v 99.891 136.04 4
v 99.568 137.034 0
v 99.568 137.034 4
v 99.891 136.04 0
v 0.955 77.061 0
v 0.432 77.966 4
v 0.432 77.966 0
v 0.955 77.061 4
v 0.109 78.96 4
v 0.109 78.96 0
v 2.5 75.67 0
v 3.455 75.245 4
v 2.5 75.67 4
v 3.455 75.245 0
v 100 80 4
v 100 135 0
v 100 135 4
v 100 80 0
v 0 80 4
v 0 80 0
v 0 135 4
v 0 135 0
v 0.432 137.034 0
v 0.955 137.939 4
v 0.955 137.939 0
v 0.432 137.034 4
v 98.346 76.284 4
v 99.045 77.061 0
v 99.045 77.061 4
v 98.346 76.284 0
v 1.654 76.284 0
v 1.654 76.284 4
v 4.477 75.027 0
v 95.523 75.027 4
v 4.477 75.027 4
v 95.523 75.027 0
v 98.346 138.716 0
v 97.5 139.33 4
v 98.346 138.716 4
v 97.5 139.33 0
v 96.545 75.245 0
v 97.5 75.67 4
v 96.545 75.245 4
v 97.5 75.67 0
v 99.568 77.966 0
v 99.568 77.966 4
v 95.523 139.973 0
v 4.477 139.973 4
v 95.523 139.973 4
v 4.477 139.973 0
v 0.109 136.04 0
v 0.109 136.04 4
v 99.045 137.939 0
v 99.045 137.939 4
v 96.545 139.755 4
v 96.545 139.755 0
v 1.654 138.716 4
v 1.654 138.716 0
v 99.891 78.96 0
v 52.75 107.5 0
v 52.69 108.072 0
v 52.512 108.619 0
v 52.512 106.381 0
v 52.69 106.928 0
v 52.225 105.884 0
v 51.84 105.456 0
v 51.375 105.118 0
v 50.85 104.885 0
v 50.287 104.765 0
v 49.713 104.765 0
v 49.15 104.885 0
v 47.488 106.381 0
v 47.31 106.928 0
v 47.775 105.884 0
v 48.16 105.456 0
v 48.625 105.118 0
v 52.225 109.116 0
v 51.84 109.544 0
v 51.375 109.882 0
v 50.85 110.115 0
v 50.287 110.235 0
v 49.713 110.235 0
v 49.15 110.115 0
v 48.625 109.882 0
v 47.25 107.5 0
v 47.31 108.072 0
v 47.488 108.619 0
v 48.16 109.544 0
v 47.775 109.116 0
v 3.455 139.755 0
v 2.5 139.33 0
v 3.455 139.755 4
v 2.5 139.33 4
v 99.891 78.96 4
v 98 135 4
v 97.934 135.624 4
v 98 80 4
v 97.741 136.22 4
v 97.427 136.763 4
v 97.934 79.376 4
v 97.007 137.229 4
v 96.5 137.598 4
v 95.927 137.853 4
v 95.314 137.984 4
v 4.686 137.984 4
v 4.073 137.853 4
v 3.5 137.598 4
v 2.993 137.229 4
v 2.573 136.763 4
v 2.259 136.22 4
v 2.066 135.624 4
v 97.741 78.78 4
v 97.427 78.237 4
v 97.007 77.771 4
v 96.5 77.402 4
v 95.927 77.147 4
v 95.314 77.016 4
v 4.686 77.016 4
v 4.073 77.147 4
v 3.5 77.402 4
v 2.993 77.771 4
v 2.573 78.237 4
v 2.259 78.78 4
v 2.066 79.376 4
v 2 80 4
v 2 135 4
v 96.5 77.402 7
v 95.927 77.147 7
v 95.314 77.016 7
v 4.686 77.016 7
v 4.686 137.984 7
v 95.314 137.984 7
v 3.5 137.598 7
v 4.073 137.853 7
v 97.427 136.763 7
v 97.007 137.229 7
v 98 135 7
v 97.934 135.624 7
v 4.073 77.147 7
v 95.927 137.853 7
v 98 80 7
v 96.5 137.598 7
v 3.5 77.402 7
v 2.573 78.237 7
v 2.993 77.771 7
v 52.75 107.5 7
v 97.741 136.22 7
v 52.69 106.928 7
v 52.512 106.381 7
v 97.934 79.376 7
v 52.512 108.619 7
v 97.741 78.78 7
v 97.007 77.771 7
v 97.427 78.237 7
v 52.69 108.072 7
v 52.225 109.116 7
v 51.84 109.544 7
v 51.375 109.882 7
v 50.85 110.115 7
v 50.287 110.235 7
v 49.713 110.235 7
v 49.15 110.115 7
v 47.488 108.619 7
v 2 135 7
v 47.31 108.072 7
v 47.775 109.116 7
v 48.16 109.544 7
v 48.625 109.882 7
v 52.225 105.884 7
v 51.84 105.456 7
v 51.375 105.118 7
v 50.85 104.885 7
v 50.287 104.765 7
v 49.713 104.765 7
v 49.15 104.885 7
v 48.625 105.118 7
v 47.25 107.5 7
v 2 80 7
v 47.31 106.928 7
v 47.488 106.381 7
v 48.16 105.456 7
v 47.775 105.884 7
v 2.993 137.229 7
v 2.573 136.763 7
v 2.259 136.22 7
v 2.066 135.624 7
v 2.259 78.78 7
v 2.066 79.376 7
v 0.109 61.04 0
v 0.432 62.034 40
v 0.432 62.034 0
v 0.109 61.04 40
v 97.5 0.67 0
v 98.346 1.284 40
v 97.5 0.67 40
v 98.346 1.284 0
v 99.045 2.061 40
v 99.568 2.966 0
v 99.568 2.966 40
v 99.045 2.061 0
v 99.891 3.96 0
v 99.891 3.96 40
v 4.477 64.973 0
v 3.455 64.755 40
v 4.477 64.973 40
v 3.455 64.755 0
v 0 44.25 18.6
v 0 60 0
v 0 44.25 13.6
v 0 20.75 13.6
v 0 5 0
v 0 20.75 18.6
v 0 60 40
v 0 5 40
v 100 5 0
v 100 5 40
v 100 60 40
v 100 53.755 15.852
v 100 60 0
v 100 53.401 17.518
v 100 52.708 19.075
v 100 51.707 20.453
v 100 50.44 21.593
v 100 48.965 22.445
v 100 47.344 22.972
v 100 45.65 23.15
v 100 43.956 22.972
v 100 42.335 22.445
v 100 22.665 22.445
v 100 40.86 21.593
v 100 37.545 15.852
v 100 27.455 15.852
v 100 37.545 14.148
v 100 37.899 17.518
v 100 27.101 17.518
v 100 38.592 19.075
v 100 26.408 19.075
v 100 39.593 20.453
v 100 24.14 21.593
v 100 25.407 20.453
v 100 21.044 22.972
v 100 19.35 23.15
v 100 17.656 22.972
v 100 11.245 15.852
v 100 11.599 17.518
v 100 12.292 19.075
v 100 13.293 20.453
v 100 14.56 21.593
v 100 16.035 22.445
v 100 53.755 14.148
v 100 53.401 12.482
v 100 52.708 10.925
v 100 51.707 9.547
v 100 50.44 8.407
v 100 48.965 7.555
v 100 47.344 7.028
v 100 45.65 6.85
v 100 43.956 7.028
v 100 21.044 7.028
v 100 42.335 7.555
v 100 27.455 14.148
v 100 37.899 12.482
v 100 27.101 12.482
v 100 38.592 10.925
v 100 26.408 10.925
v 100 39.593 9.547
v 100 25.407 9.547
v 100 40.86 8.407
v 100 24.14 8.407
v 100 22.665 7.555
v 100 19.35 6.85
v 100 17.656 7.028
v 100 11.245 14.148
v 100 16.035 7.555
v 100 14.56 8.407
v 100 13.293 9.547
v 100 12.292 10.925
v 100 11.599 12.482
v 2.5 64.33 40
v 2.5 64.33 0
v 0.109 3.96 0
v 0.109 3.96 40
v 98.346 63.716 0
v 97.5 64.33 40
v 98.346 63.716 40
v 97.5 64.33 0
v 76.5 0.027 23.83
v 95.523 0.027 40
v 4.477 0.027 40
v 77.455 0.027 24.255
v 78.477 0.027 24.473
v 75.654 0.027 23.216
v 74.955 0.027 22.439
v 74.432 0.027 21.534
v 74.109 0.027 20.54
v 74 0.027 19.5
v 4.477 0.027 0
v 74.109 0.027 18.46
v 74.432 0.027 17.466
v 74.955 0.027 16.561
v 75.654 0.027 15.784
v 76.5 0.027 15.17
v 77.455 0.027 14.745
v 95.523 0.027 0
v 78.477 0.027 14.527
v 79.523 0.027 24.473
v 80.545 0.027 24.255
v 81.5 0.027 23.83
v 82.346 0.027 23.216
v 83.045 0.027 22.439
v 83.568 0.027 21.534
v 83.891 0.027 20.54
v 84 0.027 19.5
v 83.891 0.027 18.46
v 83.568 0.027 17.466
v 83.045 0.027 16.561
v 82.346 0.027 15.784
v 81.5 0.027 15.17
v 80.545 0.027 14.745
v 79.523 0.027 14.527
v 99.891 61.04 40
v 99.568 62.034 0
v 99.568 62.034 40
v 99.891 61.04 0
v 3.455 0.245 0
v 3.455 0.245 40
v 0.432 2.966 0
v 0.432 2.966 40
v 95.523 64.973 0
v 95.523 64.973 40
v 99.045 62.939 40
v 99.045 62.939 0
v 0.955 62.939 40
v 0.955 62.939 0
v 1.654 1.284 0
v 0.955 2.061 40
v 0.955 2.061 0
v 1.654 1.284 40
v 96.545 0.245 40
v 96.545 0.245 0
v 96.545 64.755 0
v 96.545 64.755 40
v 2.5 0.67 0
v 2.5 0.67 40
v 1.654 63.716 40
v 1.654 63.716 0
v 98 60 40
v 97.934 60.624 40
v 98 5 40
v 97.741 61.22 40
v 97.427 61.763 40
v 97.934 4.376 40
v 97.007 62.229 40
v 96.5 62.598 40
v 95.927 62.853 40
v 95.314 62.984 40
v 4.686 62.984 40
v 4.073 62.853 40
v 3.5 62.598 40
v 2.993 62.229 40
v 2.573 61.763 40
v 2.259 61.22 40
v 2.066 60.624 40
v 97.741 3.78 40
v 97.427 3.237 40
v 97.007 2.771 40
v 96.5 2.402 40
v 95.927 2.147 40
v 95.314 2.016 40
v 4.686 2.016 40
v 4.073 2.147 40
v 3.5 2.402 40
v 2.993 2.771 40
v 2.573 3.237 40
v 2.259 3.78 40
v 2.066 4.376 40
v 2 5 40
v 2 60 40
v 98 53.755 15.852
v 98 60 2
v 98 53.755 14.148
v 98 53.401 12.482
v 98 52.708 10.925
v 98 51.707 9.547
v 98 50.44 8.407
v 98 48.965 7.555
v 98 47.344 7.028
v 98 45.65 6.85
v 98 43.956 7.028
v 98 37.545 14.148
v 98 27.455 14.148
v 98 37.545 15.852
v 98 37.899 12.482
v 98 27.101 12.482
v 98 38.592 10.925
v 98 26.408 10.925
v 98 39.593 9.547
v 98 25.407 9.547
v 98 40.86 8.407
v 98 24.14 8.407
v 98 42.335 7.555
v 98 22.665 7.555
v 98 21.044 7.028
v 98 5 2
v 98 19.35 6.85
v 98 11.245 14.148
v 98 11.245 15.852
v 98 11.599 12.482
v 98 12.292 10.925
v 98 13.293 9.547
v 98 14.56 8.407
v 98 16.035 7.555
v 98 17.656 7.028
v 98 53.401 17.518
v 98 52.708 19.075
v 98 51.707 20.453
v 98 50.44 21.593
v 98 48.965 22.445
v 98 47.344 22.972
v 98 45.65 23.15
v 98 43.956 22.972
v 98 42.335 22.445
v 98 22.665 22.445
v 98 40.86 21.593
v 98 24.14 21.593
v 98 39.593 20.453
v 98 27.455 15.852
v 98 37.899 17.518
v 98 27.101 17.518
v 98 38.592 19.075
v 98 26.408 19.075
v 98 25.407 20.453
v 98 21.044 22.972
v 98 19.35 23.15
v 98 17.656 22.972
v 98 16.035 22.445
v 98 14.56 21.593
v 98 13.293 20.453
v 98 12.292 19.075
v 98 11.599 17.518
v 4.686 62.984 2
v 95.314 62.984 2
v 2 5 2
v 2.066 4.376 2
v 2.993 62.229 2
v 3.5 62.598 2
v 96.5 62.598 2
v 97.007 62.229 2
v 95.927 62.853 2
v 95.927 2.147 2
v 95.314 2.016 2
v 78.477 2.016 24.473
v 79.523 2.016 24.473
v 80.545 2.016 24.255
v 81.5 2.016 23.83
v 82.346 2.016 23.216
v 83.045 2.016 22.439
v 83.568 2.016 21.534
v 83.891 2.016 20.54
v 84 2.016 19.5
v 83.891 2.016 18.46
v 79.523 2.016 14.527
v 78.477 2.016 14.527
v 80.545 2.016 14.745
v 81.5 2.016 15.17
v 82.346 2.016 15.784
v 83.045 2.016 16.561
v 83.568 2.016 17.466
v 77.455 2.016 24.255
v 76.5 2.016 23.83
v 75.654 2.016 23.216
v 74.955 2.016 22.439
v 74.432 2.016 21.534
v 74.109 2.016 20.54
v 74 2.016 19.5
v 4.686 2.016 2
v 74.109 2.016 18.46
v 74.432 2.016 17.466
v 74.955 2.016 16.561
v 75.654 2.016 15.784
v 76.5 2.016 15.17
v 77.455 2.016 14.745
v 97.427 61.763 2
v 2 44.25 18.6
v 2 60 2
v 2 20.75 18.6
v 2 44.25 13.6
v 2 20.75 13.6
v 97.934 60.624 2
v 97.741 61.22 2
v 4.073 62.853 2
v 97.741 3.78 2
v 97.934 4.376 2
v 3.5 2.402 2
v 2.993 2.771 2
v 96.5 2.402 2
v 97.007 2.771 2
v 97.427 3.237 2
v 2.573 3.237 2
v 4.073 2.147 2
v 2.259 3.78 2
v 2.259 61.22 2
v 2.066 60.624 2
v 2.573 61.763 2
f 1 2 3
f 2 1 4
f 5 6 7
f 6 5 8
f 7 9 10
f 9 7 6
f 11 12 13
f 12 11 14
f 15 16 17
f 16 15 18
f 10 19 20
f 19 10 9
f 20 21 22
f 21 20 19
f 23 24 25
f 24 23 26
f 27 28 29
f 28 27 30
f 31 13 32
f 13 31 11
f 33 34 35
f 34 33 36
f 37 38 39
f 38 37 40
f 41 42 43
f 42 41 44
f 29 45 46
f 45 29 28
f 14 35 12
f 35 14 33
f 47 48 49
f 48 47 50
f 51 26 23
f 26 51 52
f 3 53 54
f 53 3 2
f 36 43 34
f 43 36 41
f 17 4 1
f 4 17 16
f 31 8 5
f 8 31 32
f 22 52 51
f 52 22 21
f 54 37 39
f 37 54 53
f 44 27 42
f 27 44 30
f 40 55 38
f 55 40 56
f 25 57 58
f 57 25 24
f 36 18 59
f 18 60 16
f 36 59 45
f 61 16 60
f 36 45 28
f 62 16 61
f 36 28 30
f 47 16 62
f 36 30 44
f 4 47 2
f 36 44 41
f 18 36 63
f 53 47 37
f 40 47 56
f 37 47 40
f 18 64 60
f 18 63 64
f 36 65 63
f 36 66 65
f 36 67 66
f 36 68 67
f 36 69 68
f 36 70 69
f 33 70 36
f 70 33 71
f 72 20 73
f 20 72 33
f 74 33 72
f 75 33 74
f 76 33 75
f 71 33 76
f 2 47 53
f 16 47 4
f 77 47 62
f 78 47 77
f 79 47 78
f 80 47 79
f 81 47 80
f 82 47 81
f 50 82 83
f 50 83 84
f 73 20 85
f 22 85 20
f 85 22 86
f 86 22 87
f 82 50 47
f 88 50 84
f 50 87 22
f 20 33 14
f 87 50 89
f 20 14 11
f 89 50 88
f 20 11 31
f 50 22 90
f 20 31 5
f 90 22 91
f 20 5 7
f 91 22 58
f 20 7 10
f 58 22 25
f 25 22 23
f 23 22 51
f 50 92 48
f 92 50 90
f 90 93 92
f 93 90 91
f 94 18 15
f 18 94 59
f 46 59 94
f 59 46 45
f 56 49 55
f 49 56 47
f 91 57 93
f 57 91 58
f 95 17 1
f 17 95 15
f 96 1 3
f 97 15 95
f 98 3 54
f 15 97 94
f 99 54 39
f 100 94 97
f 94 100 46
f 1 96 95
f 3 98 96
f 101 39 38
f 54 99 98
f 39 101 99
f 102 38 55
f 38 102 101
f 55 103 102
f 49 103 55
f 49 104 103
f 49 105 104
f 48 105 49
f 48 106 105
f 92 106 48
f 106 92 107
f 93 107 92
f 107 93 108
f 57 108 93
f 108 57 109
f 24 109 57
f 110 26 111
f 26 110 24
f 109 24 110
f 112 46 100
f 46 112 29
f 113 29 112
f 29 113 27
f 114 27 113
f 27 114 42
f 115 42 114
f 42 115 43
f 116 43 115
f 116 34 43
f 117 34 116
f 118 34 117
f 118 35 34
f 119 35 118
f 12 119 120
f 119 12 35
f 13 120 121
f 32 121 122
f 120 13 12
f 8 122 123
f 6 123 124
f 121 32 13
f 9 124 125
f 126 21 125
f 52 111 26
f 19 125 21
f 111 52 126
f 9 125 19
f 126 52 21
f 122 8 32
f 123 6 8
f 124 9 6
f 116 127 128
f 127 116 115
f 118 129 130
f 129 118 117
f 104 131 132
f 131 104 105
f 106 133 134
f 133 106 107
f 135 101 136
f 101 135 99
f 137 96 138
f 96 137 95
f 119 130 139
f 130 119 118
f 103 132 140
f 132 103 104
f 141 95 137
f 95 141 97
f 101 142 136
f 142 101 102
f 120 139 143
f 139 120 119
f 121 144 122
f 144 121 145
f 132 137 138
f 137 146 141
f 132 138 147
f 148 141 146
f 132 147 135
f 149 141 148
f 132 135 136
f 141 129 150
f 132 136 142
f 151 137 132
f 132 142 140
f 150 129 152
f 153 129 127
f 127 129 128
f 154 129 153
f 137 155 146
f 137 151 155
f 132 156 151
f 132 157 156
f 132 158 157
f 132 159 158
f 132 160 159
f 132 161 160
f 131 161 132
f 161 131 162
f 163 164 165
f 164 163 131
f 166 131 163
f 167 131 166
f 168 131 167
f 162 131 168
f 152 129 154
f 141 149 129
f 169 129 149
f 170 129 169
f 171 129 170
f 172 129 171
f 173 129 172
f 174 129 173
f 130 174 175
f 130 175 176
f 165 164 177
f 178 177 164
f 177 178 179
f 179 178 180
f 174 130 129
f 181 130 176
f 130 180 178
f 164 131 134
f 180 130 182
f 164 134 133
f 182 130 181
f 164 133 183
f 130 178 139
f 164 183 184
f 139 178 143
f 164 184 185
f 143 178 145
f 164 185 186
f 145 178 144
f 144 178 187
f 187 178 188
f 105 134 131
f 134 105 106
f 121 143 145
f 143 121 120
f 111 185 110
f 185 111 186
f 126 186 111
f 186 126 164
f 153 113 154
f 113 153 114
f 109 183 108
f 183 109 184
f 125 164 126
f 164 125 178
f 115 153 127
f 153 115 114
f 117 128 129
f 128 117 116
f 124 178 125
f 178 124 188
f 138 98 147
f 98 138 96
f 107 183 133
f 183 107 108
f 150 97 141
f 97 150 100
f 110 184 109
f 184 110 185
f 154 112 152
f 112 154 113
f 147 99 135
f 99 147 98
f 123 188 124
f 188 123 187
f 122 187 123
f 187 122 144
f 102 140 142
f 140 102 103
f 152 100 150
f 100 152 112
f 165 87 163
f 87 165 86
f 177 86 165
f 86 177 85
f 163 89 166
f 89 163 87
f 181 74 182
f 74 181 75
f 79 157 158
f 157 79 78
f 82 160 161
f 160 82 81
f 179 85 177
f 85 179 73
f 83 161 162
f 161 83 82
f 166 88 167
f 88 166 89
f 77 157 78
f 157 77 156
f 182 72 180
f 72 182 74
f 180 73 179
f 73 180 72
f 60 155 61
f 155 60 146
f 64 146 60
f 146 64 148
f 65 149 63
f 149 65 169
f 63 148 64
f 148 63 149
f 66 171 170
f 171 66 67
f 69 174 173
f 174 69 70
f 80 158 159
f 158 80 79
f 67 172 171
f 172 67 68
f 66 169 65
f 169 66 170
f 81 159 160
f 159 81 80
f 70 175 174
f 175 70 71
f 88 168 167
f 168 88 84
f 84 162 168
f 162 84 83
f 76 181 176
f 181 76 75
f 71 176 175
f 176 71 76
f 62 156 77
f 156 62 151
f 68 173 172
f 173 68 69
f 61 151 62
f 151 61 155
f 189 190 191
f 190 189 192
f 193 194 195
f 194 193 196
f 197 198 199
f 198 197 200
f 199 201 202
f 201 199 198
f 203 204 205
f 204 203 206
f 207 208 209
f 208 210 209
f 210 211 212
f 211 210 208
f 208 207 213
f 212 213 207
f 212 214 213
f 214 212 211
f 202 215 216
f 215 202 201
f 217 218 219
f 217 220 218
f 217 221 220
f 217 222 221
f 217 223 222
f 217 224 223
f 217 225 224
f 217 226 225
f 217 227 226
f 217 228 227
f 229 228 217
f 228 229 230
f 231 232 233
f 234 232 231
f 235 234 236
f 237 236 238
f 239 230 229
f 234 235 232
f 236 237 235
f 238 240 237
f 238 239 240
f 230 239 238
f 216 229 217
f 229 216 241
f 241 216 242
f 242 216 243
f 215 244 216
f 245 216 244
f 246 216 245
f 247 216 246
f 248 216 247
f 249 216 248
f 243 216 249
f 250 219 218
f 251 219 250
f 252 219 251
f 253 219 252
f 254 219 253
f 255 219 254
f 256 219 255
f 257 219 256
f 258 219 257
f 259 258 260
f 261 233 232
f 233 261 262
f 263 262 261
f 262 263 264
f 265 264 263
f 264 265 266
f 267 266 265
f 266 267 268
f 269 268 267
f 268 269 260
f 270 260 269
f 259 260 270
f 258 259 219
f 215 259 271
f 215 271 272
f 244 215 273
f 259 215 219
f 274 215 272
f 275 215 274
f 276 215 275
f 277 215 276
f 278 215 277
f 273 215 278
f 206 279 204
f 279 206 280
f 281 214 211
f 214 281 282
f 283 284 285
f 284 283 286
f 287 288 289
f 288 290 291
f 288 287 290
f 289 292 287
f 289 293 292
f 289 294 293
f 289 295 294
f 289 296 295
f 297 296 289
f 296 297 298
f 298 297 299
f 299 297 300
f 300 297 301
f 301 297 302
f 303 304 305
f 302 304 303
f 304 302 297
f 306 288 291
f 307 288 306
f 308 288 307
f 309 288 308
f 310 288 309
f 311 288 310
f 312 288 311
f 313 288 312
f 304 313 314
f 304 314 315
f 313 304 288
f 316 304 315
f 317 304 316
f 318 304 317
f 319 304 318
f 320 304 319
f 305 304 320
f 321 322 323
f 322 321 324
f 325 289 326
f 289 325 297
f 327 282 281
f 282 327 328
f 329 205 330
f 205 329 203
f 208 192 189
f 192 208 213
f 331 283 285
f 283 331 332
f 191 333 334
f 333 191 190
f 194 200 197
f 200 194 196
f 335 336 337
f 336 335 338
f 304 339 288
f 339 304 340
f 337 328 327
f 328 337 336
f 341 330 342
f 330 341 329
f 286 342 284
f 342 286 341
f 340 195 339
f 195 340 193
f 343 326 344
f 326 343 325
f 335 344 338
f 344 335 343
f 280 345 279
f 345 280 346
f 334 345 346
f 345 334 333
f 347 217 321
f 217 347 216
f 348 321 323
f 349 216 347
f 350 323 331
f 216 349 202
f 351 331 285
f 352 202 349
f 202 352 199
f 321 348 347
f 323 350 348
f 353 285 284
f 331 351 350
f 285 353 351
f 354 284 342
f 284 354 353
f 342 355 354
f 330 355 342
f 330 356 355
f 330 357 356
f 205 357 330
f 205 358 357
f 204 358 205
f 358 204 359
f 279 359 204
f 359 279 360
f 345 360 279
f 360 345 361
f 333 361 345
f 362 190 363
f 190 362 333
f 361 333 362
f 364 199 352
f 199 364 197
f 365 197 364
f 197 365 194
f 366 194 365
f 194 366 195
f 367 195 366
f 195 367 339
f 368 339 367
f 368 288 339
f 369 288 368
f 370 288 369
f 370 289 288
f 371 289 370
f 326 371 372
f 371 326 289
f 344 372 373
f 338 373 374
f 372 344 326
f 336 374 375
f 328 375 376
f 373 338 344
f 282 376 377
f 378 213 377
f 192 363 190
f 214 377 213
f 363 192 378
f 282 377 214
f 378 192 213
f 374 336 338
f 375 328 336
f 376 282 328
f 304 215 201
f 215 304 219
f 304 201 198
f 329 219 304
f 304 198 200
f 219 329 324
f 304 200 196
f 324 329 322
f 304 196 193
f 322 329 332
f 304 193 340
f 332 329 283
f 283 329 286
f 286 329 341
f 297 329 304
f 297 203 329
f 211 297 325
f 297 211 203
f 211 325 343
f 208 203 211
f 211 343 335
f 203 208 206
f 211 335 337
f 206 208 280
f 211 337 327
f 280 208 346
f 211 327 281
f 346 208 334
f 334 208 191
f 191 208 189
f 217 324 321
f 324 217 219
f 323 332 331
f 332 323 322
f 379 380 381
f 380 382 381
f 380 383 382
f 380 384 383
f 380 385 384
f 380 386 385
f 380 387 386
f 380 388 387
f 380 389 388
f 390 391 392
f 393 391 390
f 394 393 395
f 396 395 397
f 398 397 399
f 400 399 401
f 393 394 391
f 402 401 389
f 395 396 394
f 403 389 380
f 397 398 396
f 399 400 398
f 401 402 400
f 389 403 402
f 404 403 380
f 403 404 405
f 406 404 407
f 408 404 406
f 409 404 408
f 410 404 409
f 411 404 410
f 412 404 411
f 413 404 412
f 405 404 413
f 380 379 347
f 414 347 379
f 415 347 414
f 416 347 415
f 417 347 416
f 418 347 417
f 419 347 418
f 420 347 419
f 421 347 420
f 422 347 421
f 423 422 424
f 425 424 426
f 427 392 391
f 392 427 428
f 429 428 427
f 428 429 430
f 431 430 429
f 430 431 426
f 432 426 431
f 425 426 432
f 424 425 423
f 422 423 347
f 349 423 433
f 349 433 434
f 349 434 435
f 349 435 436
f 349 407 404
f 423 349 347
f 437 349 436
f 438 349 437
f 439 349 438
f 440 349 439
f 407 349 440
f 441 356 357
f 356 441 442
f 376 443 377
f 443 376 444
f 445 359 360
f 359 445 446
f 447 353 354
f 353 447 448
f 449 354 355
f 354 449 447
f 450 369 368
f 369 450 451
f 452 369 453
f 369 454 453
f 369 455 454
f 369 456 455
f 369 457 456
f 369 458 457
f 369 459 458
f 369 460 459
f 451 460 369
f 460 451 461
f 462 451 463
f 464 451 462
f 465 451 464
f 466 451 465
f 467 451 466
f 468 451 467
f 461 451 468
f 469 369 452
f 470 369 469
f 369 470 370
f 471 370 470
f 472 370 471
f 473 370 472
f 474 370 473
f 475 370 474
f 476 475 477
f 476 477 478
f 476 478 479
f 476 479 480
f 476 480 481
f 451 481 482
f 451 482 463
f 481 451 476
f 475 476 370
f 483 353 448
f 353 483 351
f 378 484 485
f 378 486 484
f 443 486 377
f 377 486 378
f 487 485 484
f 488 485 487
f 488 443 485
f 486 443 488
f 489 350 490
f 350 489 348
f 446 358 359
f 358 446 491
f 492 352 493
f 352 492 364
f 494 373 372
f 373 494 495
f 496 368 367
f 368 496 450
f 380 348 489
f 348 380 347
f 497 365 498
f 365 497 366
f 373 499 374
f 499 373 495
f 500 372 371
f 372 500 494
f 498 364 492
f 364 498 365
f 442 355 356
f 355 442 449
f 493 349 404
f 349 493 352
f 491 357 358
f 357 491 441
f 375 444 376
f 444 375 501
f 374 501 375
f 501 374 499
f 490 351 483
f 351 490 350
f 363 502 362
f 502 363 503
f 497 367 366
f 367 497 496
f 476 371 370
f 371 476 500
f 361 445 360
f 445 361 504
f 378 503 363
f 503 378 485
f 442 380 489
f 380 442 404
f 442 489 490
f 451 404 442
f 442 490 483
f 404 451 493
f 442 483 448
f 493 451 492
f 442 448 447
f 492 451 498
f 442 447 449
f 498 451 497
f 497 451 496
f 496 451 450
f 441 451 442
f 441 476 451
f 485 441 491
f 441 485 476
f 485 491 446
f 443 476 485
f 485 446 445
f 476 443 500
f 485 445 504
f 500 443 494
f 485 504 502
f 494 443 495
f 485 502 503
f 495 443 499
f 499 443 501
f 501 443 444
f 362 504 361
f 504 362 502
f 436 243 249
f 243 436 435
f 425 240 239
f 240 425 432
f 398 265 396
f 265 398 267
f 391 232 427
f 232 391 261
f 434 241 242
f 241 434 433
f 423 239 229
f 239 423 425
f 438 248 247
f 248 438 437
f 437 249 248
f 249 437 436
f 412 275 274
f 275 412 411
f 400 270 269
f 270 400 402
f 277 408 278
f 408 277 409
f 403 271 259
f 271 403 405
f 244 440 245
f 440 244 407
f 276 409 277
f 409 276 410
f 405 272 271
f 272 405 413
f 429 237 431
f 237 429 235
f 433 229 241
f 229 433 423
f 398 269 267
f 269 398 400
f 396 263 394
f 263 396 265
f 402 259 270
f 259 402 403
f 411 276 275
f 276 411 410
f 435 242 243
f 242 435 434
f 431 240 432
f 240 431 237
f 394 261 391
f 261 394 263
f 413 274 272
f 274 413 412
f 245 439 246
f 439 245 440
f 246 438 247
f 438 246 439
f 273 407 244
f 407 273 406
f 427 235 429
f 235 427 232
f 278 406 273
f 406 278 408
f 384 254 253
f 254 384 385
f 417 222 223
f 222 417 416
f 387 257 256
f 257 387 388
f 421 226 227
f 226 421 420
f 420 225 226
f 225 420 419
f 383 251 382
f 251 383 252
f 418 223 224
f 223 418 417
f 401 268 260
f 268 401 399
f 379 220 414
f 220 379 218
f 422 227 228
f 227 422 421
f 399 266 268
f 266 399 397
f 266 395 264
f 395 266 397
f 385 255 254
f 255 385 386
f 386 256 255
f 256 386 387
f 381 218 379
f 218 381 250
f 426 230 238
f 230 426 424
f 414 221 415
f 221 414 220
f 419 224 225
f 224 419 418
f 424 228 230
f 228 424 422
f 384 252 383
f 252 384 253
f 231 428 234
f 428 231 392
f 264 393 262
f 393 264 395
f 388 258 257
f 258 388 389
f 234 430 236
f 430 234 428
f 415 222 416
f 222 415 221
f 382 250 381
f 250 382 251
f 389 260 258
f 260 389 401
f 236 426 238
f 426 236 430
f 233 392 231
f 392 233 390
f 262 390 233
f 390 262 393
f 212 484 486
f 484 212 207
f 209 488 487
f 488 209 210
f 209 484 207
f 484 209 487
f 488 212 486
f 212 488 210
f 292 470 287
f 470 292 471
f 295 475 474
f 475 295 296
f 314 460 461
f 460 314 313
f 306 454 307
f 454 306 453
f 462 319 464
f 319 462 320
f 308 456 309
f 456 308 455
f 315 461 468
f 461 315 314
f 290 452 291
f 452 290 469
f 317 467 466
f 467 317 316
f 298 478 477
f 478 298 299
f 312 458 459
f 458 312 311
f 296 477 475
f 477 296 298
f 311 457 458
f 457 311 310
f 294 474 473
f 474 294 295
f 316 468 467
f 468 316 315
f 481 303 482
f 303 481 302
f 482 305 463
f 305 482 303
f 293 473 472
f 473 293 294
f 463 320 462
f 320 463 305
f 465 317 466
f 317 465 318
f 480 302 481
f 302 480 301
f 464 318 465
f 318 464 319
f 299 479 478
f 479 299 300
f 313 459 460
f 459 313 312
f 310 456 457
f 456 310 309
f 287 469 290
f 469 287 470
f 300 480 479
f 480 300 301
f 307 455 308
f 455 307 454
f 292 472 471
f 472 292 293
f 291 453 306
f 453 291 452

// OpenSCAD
$fn = 30;

box_length = 100;    // 10 cm
box_width = 65;      // 6.5 cm
box_height = 40;     // 5 cm
wall_thickness = 2;  // 0.2 cm

// Corner rounding
outer_radius = 5;
inner_radius = 3;

// Cover parameters
cover_thickness = 4;
lip_height = 3;
lip_clearance = 0.2;

sensor_hole_diameter = 16 + 0.3;
sensor_hole_radius = sensor_hole_diameter / 2;
edge_to_edge_gap = 10;  
sensor_hole_spacing = sensor_hole_diameter + edge_to_edge_gap; 
sensor_hole_height = 15; 

// Cover hole parameters
sensor_protrusion_diameter = 5.5; // 5.5mm hole for 4.2×3.5mm rounded rectangle
sensor_protrusion_radius = sensor_protrusion_diameter/2;

// Back strip parameters
sensor_strip_z = 15 - 1.5;       
sensor_strip_height = 5;         
sensor_strip_length = 23.5; 

/* Sound sensor hole */
left_hole_diameter = 9.7 + 0.3;                  
left_hole_radius = left_hole_diameter/2;
left_hole_x = box_length - 21;              // Center horizontally
left_hole_z = box_height - 30 + 9.5;              // Center vertically

module rounded_rect(x, y, z, r) {
    hull() {
        translate([r, r, 0]) cylinder(r=r, h=z);
        translate([x - r, r, 0]) cylinder(r=r, h=z);
        translate([r, y - r, 0]) cylinder(r=r, h=z);
        translate([x - r, y - r, 0]) cylinder(r=r, h=z);
    }
}

module base() {
    difference() {
        // Outer shell
        rounded_rect(box_length, box_width, box_height, outer_radius);
        
        // Inner cavity
        translate([wall_thickness, wall_thickness, wall_thickness]) 
        rounded_rect(
            box_length - 2*wall_thickness, 
            box_width - 2*wall_thickness, 
            box_height - wall_thickness + 0.1,
            inner_radius
        );
        
        // Top recess
        translate([2*wall_thickness, 2*wall_thickness, box_height - lip_height]) 
        rounded_rect(
            box_length - 4*wall_thickness, 
            box_width - 4*wall_thickness, 
            lip_height + 0.1,
            inner_radius - 1
        );
        
        // Front sensor holes
        translate([box_length, (box_width/2) - (sensor_hole_spacing/2), sensor_hole_height])
        rotate([0, -90, 0])
        cylinder(r=sensor_hole_radius, h=wall_thickness + 0.02);
        
        translate([box_length, (box_width/2) + (sensor_hole_spacing/2), sensor_hole_height])
        rotate([0, -90, 0])
        cylinder(r=sensor_hole_radius, h=wall_thickness + 0.02);
        
        // Back face ventilation strip
        translate([-0.01, (box_width - sensor_strip_length)/2, sensor_strip_z])
        cube([wall_thickness + 0.02, sensor_strip_length, sensor_strip_height]);
        
        translate([left_hole_x, 0.01, left_hole_z])
        rotate([-90, 0, 0])
        cylinder(r=left_hole_radius, h=wall_thickness + 0.02);
    }
}

module cover() {
    difference() {
        union() {
            rounded_rect(box_length, box_width, cover_thickness, outer_radius);
            
            translate([wall_thickness, wall_thickness, -lip_height]) 
            rounded_rect(
                box_length - 2*wall_thickness,
                box_width - 2*wall_thickness,   
                lip_height + 0.2,              
                inner_radius     
            );
        }
        
        translate([
            box_length/2,
            box_width/2,
            -lip_height - 0.01
        ])
        cylinder(
            d = sensor_protrusion_diameter,
            h = cover_thickness + lip_height + 0.1
        );
    }
}

// Visualization
base();
translate([box_length, box_width + 10, cover_thickness]) 
rotate([0, 180, 0]) 
cover();
